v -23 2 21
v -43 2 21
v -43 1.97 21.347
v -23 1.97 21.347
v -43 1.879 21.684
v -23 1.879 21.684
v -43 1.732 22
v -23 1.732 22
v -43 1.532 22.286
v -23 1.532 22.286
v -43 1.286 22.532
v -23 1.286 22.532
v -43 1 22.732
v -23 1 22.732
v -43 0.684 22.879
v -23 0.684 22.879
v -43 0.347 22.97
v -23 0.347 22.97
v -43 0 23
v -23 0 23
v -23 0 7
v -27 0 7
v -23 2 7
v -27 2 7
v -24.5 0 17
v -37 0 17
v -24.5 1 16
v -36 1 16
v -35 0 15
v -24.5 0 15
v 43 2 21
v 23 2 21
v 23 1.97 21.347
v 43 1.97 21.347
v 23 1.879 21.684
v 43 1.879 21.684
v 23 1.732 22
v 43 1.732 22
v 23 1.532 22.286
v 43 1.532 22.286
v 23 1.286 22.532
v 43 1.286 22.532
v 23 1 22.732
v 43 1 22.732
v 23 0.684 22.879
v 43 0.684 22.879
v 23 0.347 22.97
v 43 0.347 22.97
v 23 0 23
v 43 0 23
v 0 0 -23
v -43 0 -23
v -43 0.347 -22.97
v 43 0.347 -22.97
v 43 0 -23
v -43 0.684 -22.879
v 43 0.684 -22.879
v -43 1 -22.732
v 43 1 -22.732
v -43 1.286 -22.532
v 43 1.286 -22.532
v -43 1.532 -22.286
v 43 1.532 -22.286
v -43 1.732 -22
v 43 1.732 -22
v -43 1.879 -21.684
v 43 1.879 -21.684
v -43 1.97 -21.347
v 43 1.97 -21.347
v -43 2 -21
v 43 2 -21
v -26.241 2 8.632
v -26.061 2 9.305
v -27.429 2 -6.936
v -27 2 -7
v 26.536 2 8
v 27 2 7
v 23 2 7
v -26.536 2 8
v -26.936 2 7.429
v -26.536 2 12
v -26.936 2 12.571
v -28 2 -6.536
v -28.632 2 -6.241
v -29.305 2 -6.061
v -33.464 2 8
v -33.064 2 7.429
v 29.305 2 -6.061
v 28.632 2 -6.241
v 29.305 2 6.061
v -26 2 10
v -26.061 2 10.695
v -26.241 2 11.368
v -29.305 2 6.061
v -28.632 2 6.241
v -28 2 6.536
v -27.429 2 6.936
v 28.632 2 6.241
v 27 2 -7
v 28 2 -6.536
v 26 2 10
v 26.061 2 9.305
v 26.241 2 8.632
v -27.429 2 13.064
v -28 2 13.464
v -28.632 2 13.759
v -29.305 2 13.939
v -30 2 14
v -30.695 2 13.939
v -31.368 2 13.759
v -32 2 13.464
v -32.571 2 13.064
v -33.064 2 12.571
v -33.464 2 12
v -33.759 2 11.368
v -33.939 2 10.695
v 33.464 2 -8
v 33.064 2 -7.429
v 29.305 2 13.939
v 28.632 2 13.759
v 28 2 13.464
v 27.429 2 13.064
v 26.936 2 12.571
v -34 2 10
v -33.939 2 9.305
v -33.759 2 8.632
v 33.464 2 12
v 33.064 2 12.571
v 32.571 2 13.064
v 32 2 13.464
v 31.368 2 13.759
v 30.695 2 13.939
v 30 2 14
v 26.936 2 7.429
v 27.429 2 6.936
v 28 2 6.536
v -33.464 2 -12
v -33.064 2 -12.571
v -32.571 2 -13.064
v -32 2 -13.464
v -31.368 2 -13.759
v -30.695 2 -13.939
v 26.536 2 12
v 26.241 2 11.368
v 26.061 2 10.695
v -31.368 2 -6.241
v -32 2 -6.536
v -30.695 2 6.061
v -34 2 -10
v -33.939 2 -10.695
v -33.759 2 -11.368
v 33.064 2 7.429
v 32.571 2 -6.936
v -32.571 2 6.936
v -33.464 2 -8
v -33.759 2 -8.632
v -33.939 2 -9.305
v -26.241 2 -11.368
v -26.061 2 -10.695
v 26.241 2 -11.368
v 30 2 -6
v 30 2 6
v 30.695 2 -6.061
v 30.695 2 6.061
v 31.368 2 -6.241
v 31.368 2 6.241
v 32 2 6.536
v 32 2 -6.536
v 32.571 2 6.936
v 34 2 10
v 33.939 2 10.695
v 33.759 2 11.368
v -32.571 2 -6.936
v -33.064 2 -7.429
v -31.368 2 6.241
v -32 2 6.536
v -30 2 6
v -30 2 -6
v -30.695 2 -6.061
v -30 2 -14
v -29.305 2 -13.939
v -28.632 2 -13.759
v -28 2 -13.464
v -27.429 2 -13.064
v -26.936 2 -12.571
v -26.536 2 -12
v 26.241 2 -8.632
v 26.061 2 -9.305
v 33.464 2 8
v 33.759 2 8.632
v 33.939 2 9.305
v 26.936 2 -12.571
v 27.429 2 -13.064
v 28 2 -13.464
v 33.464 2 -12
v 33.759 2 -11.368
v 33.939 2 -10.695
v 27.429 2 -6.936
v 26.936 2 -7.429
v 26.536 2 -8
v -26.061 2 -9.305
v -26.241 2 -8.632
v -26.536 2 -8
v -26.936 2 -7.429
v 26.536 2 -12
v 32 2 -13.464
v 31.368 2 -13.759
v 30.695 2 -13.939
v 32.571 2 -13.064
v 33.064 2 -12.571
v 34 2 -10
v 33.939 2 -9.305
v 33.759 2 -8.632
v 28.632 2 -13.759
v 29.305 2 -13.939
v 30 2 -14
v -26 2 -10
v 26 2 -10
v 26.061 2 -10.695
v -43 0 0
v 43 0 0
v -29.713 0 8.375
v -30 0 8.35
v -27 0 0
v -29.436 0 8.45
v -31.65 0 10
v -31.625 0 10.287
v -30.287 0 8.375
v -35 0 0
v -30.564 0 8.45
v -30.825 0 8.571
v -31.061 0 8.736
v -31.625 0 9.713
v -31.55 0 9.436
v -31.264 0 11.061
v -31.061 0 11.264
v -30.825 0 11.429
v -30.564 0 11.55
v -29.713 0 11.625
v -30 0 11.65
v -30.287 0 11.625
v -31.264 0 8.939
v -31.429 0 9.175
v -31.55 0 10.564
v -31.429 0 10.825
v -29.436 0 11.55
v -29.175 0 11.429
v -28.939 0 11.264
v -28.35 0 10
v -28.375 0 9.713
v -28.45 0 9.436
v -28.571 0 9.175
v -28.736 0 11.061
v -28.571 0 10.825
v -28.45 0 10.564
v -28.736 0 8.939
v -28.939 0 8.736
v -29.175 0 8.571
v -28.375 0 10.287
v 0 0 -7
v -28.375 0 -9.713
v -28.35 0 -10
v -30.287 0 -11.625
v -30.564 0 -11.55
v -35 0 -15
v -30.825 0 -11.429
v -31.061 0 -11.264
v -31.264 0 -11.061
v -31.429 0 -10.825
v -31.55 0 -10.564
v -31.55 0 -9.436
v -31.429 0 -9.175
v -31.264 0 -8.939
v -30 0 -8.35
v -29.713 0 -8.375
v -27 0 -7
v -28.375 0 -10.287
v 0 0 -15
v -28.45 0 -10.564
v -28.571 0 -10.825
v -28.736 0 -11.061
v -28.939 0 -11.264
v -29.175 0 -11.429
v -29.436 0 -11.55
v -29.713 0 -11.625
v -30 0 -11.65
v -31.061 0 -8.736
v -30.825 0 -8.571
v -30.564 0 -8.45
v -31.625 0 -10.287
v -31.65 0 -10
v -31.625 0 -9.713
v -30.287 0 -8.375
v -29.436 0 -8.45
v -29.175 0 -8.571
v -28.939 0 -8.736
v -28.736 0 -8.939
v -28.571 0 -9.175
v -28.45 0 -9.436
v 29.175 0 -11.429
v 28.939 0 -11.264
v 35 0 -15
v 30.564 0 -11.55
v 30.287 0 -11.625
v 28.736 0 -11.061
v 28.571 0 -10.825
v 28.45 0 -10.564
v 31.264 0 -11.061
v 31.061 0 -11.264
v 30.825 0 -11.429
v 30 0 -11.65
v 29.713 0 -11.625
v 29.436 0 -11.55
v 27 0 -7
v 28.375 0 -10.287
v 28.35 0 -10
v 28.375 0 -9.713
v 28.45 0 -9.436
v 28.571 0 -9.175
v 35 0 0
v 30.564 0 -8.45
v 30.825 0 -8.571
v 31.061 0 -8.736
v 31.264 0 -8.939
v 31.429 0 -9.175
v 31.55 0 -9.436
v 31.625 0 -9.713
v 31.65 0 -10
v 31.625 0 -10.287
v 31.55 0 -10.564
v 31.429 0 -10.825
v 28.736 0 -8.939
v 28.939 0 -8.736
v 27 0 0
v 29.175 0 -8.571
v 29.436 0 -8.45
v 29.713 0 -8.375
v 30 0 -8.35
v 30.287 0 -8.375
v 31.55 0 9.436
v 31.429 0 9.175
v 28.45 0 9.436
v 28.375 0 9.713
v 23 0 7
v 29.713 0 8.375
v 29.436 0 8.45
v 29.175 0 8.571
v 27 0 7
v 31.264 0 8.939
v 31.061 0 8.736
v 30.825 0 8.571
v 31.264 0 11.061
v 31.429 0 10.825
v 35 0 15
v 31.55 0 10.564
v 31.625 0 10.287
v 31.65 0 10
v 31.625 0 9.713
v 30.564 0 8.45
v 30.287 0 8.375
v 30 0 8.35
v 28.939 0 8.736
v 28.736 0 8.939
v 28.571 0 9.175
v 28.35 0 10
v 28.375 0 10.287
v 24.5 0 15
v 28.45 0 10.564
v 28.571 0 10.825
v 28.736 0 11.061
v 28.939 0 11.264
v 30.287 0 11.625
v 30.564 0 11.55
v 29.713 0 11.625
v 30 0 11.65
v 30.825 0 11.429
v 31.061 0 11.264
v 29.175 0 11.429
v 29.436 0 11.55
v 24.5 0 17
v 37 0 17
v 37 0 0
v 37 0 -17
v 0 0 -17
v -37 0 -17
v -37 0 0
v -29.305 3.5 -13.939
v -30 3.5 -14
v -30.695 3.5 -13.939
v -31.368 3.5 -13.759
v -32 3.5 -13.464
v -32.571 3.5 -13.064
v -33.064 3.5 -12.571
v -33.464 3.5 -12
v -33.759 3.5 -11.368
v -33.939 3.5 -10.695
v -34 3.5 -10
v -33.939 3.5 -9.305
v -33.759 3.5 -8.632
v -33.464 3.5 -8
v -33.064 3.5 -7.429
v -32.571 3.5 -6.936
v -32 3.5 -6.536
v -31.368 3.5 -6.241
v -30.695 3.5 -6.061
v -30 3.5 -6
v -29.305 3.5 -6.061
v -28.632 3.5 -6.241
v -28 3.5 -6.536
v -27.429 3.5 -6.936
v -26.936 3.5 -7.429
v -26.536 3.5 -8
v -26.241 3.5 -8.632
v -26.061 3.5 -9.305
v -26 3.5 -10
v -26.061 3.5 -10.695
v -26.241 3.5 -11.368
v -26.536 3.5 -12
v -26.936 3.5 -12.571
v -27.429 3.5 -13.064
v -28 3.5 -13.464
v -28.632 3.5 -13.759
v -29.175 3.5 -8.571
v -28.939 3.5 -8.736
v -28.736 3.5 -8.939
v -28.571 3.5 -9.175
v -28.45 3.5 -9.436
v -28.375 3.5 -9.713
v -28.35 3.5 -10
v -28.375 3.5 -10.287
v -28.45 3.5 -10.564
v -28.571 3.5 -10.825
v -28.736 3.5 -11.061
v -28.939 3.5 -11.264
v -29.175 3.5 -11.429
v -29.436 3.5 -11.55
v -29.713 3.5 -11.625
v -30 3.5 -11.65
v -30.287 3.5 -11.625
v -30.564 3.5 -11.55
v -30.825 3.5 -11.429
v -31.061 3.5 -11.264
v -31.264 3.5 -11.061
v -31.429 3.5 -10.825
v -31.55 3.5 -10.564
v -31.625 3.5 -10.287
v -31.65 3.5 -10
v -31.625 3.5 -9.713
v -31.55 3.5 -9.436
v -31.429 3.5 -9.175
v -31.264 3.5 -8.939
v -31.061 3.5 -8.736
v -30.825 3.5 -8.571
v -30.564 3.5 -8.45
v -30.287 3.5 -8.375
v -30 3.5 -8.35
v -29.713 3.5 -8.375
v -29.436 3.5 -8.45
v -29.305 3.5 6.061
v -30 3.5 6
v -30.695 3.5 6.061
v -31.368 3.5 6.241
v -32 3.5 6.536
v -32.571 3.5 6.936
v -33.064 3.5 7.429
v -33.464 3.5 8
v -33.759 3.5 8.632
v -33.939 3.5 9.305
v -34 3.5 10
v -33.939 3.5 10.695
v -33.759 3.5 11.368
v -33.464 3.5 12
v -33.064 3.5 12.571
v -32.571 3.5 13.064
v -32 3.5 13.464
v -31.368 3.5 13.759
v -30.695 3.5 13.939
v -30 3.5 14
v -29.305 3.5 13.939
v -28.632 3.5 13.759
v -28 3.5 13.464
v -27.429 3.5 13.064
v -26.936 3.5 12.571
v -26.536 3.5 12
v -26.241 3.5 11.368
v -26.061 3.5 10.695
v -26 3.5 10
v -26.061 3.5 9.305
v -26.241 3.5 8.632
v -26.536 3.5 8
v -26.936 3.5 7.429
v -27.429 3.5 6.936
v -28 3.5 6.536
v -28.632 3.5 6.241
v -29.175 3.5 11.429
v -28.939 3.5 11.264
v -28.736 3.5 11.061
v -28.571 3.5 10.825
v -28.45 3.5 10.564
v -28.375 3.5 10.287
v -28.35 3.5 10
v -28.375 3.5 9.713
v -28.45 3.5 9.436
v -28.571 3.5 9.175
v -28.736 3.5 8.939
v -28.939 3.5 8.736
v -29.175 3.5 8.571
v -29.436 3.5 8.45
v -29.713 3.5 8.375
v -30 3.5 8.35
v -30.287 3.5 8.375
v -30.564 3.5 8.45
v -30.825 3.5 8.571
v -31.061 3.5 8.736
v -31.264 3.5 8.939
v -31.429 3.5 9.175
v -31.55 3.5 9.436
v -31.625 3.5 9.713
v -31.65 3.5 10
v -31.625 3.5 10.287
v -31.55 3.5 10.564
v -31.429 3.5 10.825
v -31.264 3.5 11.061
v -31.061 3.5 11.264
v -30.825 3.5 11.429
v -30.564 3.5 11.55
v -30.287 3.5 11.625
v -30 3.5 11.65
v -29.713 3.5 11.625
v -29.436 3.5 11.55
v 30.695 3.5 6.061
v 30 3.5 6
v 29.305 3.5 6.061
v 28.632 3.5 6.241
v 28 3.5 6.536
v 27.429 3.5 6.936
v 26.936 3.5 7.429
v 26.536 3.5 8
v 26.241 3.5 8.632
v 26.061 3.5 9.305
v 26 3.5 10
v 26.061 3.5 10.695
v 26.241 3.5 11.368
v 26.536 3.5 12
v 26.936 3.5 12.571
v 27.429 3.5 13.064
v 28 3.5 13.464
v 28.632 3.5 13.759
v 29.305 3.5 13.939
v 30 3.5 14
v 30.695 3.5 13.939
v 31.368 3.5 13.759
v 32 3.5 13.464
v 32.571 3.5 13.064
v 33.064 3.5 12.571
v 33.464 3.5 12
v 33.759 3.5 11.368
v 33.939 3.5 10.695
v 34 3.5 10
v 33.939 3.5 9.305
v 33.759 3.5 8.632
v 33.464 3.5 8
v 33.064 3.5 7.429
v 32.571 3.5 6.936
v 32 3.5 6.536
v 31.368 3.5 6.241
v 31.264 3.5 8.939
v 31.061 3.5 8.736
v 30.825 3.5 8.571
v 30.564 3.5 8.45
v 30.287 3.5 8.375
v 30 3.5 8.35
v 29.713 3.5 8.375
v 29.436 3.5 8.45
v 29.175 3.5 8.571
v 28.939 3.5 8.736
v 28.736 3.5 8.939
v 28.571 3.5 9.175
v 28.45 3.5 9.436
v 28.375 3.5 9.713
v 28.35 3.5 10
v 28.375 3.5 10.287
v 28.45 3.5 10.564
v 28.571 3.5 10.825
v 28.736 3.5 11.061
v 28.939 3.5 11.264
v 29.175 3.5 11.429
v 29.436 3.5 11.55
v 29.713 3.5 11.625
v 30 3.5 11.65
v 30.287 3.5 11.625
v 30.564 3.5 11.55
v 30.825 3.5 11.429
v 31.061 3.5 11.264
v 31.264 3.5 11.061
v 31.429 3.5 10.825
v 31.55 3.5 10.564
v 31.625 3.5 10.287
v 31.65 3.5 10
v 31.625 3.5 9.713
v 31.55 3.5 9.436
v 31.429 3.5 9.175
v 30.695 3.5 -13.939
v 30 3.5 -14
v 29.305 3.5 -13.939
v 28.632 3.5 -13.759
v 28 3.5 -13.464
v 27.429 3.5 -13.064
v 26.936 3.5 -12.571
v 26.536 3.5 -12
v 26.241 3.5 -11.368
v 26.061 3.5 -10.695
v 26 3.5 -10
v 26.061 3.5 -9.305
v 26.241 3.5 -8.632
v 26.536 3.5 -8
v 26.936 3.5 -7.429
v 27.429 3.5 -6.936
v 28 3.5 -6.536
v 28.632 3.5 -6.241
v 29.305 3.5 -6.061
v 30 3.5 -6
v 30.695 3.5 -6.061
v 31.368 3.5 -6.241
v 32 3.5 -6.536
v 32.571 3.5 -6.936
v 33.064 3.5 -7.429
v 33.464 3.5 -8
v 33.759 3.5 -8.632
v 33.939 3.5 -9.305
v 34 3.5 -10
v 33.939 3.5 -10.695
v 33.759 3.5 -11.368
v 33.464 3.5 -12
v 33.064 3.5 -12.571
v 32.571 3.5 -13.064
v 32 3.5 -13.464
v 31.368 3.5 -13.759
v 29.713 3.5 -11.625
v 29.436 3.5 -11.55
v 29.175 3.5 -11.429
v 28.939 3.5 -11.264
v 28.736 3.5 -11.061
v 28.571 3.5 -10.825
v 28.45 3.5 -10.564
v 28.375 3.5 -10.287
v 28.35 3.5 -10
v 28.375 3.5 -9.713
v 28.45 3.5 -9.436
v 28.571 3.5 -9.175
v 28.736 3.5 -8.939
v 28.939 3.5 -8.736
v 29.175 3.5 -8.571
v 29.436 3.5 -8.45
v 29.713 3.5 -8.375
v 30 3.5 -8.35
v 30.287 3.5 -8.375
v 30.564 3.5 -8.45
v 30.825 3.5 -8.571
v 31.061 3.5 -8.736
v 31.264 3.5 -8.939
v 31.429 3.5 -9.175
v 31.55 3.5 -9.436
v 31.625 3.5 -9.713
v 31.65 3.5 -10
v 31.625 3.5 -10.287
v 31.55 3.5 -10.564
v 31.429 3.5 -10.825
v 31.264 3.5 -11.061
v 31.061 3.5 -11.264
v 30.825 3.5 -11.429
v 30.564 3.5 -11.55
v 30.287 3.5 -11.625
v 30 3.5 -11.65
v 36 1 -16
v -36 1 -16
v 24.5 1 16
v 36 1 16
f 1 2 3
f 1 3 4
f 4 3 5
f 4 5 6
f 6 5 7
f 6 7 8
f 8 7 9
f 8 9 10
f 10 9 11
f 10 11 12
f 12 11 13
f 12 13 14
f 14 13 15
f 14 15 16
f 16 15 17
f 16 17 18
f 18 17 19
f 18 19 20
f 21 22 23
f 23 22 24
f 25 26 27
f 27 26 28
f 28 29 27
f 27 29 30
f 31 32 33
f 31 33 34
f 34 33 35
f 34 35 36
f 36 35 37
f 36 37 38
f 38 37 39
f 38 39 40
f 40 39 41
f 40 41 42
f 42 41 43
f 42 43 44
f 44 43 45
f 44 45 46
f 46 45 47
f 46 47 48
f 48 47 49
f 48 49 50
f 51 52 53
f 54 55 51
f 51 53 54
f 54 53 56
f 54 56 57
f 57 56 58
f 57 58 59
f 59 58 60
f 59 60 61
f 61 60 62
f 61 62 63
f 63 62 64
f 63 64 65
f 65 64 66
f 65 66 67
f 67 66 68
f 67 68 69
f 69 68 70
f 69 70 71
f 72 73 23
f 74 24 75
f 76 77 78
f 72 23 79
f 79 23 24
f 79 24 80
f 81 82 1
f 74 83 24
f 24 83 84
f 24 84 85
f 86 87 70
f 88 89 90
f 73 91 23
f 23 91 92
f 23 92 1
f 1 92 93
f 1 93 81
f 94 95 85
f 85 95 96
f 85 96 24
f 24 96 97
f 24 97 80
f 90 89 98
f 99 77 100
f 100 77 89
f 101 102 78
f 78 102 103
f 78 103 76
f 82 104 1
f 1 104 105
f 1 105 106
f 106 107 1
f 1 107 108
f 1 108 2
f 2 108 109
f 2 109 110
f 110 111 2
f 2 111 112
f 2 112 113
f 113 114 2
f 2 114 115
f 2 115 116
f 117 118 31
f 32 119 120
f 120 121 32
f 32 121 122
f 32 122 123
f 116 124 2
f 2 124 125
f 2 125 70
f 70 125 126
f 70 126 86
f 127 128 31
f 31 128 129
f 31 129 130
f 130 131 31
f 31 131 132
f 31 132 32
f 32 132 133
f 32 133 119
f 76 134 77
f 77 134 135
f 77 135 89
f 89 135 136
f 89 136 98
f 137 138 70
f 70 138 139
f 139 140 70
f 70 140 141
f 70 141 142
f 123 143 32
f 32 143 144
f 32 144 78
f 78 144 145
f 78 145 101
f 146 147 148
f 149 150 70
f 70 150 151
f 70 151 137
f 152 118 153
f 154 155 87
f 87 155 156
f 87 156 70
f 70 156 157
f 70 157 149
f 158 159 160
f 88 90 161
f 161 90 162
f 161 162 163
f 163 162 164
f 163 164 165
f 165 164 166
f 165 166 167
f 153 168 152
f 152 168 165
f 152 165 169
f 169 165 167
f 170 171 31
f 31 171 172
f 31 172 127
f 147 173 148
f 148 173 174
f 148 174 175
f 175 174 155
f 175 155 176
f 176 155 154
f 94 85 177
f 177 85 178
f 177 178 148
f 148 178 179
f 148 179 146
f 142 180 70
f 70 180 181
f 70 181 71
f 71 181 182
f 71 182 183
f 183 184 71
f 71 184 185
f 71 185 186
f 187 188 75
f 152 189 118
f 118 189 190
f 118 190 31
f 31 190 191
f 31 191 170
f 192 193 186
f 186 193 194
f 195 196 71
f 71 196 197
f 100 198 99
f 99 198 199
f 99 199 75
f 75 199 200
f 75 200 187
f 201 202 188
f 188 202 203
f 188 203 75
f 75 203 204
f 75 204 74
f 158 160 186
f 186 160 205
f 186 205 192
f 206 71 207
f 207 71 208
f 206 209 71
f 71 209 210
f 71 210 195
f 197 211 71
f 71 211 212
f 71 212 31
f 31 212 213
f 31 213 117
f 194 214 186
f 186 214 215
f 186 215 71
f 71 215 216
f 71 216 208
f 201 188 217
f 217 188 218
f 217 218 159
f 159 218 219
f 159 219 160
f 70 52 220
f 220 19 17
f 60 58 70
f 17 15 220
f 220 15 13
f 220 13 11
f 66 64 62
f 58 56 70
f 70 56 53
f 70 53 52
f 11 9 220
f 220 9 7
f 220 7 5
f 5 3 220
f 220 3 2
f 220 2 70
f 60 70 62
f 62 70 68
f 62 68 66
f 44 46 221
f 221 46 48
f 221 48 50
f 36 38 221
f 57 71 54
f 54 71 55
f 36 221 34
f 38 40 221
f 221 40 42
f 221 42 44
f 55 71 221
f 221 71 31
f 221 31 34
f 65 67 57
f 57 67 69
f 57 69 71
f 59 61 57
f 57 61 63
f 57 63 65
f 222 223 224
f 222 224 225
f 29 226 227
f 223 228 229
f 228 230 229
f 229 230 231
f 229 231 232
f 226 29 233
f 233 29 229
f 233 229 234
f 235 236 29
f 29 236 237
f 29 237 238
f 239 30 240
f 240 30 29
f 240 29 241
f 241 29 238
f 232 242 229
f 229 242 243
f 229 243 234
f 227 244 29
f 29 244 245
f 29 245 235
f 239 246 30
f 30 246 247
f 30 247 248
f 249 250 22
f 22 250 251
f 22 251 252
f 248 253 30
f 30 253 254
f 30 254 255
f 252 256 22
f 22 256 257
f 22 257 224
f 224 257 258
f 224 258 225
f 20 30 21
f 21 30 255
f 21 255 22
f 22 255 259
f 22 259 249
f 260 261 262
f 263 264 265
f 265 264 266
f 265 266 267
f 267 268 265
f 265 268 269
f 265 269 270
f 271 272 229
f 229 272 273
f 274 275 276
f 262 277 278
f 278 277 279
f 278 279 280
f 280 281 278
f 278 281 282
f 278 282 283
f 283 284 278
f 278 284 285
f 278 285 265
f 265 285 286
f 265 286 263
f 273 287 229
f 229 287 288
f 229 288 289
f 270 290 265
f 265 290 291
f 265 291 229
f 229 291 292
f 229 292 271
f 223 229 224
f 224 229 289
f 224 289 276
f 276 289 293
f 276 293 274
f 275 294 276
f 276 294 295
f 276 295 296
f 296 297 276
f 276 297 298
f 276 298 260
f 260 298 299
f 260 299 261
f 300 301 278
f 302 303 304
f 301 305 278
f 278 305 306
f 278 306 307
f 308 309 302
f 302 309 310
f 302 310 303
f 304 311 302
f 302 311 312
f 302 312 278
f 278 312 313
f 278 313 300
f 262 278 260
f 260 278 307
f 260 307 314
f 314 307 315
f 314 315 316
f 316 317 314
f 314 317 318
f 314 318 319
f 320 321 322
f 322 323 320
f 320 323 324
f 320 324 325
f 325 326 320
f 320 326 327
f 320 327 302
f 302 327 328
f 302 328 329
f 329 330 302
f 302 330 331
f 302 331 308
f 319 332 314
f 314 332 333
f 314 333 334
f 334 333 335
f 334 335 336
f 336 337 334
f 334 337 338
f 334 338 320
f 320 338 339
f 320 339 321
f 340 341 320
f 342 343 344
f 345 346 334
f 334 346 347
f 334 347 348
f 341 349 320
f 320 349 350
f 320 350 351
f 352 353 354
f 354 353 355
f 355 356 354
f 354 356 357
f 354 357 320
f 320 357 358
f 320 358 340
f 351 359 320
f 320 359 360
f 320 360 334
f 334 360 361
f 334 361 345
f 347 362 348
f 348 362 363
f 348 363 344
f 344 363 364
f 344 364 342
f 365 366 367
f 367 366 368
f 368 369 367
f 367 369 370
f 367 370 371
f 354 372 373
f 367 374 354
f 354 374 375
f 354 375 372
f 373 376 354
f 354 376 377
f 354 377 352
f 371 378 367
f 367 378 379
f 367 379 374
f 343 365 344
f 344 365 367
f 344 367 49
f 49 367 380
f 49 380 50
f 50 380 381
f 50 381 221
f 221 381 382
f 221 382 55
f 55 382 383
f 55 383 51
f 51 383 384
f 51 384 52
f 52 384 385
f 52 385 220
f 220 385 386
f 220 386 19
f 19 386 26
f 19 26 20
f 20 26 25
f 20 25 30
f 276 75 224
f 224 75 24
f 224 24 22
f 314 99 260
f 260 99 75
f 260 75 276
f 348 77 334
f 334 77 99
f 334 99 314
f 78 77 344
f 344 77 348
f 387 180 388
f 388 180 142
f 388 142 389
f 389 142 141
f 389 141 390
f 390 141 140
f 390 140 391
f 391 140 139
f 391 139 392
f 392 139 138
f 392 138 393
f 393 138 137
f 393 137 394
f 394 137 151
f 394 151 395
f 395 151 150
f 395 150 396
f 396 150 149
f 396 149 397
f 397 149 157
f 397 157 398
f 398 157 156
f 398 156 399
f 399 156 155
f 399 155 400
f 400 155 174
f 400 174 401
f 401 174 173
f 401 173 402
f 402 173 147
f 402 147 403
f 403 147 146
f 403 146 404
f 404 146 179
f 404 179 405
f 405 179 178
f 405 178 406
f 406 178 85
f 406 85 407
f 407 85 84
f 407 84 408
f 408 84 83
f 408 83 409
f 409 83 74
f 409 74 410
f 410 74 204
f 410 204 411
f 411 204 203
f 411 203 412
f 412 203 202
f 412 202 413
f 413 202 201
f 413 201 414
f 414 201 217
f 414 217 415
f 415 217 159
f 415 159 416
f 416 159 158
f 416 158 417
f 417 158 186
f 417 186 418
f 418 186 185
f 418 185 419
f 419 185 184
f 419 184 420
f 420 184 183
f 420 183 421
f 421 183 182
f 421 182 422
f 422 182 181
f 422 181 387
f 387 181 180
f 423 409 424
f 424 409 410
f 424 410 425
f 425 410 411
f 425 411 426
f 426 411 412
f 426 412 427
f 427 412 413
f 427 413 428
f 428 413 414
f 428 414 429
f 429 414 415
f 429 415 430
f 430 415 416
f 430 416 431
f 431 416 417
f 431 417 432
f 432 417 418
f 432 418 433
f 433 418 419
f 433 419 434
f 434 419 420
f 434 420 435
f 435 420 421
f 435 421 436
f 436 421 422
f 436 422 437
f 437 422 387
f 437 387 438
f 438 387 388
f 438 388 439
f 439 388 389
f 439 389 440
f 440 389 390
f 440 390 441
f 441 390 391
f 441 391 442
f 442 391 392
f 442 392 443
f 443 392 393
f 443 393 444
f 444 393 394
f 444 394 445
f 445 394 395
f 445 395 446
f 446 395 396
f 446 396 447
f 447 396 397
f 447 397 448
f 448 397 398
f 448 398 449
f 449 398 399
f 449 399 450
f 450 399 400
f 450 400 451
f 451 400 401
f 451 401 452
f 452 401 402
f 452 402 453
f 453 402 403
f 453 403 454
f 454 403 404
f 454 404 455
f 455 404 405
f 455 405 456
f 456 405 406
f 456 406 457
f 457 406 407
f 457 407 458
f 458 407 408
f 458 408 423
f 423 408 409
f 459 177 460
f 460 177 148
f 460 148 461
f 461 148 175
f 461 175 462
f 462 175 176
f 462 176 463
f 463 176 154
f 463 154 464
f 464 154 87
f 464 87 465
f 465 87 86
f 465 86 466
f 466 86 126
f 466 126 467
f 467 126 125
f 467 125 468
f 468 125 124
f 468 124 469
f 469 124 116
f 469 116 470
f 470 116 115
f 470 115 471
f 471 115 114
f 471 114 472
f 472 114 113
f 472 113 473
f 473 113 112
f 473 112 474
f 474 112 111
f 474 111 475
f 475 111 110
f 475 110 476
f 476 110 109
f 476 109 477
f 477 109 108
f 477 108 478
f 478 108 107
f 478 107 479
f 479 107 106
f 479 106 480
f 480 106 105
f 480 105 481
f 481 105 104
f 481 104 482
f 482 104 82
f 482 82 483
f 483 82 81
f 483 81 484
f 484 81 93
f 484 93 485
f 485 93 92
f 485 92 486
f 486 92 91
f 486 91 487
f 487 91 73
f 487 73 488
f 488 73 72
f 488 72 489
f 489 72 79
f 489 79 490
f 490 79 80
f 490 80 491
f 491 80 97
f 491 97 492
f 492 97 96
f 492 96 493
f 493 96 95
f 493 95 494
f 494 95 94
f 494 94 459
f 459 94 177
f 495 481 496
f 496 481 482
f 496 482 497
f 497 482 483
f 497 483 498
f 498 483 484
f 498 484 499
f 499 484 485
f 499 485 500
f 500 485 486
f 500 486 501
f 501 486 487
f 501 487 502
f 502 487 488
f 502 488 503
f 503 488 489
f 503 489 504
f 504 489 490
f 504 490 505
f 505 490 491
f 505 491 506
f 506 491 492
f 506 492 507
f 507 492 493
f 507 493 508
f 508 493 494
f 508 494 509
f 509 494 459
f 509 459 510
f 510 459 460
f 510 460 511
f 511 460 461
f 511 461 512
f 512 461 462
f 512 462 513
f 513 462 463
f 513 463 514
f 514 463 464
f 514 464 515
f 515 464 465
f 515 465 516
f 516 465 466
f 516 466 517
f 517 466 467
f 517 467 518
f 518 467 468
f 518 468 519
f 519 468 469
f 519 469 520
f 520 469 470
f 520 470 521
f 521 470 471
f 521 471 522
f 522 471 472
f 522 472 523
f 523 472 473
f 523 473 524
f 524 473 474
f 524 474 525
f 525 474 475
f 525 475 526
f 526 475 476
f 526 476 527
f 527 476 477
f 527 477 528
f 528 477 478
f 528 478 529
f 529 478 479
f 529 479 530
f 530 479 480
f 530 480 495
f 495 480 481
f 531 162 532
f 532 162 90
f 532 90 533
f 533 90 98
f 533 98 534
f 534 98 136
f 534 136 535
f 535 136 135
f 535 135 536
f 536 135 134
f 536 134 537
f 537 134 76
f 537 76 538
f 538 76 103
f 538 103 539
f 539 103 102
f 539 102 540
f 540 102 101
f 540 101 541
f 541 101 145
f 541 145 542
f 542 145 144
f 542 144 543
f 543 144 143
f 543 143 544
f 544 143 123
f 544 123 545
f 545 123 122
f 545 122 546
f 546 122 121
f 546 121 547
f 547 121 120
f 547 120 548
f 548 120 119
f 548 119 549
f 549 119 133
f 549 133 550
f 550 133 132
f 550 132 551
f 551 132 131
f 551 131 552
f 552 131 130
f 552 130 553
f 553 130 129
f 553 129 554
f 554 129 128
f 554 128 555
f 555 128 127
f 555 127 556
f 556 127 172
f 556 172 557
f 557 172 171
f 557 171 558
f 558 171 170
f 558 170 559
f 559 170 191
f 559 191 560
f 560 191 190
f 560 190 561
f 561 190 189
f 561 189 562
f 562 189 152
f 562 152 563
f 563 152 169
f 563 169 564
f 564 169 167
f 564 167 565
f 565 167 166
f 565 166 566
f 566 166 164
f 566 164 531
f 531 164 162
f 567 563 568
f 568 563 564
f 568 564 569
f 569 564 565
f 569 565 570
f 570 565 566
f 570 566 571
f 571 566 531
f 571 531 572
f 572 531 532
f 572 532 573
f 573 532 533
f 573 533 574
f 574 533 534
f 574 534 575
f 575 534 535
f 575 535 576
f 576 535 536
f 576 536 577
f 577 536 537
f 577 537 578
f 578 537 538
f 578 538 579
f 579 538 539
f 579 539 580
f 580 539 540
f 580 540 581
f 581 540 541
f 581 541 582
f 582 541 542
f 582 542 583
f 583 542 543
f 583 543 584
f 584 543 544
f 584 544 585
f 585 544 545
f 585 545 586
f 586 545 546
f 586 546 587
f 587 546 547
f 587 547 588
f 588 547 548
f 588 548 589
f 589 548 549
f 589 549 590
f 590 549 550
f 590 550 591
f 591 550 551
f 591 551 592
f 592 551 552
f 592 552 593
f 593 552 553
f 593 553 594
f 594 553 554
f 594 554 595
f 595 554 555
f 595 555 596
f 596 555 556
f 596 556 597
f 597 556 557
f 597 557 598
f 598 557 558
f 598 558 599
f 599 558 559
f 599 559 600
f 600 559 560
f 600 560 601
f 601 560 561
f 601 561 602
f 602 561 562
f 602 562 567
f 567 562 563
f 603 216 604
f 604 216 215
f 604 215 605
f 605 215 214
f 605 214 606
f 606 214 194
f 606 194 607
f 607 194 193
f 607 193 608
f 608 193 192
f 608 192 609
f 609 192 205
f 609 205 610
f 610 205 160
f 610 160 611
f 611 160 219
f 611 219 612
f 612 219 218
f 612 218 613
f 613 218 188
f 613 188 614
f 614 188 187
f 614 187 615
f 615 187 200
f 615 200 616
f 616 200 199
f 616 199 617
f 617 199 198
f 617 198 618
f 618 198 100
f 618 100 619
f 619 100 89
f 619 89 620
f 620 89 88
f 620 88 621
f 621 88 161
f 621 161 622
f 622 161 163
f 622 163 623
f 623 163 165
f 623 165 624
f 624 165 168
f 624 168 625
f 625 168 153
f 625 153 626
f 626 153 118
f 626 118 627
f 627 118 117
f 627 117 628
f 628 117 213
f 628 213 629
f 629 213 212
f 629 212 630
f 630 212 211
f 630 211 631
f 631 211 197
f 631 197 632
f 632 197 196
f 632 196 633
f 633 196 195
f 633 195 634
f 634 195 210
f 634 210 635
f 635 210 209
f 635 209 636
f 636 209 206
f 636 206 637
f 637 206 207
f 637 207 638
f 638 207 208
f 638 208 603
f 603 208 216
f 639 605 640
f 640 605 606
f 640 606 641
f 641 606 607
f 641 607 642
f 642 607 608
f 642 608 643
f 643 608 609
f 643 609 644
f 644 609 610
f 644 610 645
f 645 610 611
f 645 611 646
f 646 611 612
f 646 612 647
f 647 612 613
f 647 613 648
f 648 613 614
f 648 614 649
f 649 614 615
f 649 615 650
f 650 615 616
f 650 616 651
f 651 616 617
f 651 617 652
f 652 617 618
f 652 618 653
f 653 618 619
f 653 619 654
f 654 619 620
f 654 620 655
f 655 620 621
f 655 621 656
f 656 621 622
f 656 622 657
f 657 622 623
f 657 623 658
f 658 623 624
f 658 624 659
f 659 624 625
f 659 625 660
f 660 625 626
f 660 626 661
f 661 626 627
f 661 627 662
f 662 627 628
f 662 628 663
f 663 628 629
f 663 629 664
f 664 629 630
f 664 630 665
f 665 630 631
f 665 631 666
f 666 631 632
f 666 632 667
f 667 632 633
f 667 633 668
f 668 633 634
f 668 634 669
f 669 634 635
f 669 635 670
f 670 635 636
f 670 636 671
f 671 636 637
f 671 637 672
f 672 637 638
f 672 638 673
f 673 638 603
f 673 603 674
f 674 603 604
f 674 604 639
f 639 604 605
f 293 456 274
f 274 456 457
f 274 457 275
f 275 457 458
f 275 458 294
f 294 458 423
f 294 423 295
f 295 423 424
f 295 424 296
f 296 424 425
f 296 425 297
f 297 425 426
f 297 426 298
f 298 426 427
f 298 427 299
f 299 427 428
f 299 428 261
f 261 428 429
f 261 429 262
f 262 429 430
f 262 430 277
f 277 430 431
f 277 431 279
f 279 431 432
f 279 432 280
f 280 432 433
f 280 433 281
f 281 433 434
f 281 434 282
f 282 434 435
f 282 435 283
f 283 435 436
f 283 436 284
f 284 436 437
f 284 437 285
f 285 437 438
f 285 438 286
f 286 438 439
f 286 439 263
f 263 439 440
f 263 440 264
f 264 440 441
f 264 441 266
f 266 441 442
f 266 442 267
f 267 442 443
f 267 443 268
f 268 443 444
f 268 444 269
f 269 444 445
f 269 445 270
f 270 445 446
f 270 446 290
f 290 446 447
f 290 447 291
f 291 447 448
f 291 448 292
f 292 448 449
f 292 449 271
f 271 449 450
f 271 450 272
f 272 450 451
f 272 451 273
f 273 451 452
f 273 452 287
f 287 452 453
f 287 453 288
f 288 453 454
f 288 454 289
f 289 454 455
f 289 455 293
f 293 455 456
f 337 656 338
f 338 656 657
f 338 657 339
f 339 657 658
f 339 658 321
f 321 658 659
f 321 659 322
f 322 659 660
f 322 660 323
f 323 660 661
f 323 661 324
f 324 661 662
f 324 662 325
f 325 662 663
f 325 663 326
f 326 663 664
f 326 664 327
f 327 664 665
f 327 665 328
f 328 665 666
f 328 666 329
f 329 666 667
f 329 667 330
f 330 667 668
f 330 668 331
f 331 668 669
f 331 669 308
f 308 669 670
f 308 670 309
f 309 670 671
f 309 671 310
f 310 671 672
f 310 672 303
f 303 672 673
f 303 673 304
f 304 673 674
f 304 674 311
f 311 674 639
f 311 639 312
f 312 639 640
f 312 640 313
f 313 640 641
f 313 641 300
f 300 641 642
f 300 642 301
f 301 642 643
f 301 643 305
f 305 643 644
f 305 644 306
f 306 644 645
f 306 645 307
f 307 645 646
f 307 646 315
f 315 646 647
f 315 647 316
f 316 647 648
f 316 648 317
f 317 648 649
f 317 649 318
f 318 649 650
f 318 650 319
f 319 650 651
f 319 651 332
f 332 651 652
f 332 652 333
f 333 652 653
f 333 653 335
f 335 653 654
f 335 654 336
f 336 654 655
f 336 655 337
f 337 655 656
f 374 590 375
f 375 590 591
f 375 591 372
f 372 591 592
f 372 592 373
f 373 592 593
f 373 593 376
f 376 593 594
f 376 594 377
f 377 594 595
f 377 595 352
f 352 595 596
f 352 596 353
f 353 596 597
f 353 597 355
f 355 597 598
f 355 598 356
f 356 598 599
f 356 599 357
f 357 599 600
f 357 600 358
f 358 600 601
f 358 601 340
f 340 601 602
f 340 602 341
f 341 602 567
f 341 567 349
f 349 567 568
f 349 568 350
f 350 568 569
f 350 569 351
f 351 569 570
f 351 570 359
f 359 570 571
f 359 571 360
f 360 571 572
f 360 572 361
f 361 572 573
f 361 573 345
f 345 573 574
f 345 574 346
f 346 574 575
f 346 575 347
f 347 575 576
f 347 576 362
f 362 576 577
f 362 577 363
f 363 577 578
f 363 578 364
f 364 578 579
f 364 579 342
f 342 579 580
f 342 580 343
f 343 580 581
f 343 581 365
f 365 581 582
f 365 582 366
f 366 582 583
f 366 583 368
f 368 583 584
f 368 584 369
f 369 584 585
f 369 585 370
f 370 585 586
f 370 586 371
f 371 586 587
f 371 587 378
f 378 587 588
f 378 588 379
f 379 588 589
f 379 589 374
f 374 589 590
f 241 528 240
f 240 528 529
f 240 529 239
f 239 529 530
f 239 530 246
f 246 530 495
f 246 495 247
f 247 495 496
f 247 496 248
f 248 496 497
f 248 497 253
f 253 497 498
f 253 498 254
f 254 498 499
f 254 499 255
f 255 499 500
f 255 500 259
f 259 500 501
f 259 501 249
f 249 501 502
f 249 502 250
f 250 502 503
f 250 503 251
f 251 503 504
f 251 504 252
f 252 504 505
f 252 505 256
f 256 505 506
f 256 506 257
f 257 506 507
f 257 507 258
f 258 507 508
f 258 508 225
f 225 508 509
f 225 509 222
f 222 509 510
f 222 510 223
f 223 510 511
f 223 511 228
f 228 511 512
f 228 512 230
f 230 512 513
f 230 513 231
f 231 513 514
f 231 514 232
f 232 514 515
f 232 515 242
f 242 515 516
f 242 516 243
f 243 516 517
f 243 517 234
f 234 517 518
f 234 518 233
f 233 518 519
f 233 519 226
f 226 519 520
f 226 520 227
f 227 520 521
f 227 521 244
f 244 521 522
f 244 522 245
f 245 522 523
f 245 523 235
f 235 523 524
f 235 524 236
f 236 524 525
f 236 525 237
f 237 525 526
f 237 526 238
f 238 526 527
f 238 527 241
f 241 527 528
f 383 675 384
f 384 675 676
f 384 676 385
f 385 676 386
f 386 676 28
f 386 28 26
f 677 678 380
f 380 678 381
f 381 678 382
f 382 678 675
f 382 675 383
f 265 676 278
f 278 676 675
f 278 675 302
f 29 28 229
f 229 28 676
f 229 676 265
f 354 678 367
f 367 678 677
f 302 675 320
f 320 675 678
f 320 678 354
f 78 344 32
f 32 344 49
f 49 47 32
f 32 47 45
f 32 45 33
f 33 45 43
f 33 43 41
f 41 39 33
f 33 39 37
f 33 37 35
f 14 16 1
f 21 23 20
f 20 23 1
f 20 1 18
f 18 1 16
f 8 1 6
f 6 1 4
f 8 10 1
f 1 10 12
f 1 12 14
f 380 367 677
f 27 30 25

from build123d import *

# Parameters (mm, degrees)
SKETCH1_W               = 86
SKETCH1_H               = 46
BOSS_EXTRUDE1_DEPTH     = 2
SKETCH2_W               = 54
SKETCH2_H               = 14
CUT_EXTRUDE1_DEPTH      = 49.805737368
SKETCH4_R               = 4
BOSS_EXTRUDE2_DEPTH     = 1.5
CUT_EXTRUDE2_DEPTH      = 1.5
CUT_EXTRUDE2_DEPTH_BACK = 10
SKETCH3_R               = 1.65
SKETCH5_W               = 74
SKETCH5_H               = 34
SKETCH5_W_2             = 70
SKETCH5_H_2             = 30
CUT_EXTRUDE3_DEPTH      = 10
CUT_EXTRUDE3_TAPER      = 45
FILLET1_R               = 2
FILLET2_R               = 2
SKETCH6_W               = 46
SKETCH6_H               = 16
CUT_EXTRUDE4_DEPTH      = 10
BOSS_EXTRUDE3_START     = -1
SKETCH8_W               = 1.5
SKETCH8_H               = 2
BOSS_EXTRUDE3_DEPTH     = 1


with BuildPart() as part:
    # Sketch1 → Boss-Extrude1 (new body)
    with BuildSketch(Plane(origin=(0, 0, 0), x_dir=(1, 0, 0), z_dir=(0, 1, 0))):
        Rectangle(SKETCH1_W, SKETCH1_H)
    extrude(amount=BOSS_EXTRUDE1_DEPTH)

    # Sketch2 → Cut-Extrude1 (cut, through all)
    with BuildSketch(Plane(origin=(0, 2, 0), x_dir=(1, 0, 0), z_dir=(0, 1, 0))):
        Rectangle(SKETCH2_W, SKETCH2_H)
    extrude(amount=-CUT_EXTRUDE1_DEPTH, mode=Mode.SUBTRACT)

    # Sketch4 → Boss-Extrude2 (add)
    with BuildSketch(Plane(origin=(0, 2, 0), x_dir=(1, 0, 0), z_dir=(0, 1, 0))):
        with Locations(Location((-30, 10, 0), (0, 0, 270))):
            Circle(SKETCH4_R)
        with Locations(Location((-30, -10, 0), (0, 0, 90))):
            Circle(SKETCH4_R)
        with Locations(Location((30, -10, 0), (0, 0, 270))):
            Circle(SKETCH4_R)
        with Locations(Location((30, 10, 0), (0, 0, 90))):
            Circle(SKETCH4_R)
    extrude(amount=BOSS_EXTRUDE2_DEPTH)

    # Sketch3 → Cut-Extrude2 (cut, two sides: drawn at the far end of the back side and taken through both)
    with BuildSketch(Plane(origin=(0, 2, 0), x_dir=(1, 0, 0), z_dir=(0, 1, 0)).offset(-CUT_EXTRUDE2_DEPTH_BACK)):
        with Locations(Location((-30, 10, 0), (0, 0, 270))):
            Circle(SKETCH3_R)
        with Locations(Location((30, 10, 0), (0, 0, 270))):
            Circle(SKETCH3_R)
        with Locations(Location((30, -10, 0), (0, 0, 270))):
            Circle(SKETCH3_R)
        with Locations(Location((-30, -10, 0), (0, 0, 270))):
            Circle(SKETCH3_R)
    extrude(amount=CUT_EXTRUDE2_DEPTH + CUT_EXTRUDE2_DEPTH_BACK, mode=Mode.SUBTRACT)

    # Sketch5 → Cut-Extrude3 (cut)
    with BuildSketch(Plane.XZ):
        Rectangle(SKETCH5_W, SKETCH5_H)
        Rectangle(SKETCH5_W_2, SKETCH5_H_2, mode=Mode.SUBTRACT)
    extrude(amount=-CUT_EXTRUDE3_DEPTH, taper=CUT_EXTRUDE3_TAPER, mode=Mode.SUBTRACT)

    # Fillet1
    fillet1_edges = [part.edges().sort_by_distance(p)[0] for p in [
        (0, 2, -23),
    ]]
    fillet(fillet1_edges, radius=FILLET1_R - 0.0001)  # a hair under: the kernel refuses the full size

    # Fillet2
    fillet2_edges = [part.edges().sort_by_distance(p)[0] for p in [
        (0, 2, 23),
    ]]
    fillet(fillet2_edges, radius=FILLET2_R - 0.0001)  # a hair under: the kernel refuses the full size

    # Sketch6 → Cut-Extrude4 (cut)
    with BuildSketch(Plane(origin=(0, 2, 0), x_dir=(1, 0, 0), z_dir=(0, 1, 0))):
        with Locations((0, -15)):
            Rectangle(SKETCH6_W, SKETCH6_H)
    extrude(amount=-CUT_EXTRUDE4_DEPTH, mode=Mode.SUBTRACT)

    # Sketch8 → Boss-Extrude3 (add)
    with BuildSketch(Plane.XZ.offset(BOSS_EXTRUDE3_START)):
        with Locations((23.75, 16)):
            Rectangle(SKETCH8_W, SKETCH8_H)
        with Locations((-23.75, 16)):
            Rectangle(SKETCH8_W, SKETCH8_H)
    extrude(amount=BOSS_EXTRUDE3_DEPTH)


solid = part.part
